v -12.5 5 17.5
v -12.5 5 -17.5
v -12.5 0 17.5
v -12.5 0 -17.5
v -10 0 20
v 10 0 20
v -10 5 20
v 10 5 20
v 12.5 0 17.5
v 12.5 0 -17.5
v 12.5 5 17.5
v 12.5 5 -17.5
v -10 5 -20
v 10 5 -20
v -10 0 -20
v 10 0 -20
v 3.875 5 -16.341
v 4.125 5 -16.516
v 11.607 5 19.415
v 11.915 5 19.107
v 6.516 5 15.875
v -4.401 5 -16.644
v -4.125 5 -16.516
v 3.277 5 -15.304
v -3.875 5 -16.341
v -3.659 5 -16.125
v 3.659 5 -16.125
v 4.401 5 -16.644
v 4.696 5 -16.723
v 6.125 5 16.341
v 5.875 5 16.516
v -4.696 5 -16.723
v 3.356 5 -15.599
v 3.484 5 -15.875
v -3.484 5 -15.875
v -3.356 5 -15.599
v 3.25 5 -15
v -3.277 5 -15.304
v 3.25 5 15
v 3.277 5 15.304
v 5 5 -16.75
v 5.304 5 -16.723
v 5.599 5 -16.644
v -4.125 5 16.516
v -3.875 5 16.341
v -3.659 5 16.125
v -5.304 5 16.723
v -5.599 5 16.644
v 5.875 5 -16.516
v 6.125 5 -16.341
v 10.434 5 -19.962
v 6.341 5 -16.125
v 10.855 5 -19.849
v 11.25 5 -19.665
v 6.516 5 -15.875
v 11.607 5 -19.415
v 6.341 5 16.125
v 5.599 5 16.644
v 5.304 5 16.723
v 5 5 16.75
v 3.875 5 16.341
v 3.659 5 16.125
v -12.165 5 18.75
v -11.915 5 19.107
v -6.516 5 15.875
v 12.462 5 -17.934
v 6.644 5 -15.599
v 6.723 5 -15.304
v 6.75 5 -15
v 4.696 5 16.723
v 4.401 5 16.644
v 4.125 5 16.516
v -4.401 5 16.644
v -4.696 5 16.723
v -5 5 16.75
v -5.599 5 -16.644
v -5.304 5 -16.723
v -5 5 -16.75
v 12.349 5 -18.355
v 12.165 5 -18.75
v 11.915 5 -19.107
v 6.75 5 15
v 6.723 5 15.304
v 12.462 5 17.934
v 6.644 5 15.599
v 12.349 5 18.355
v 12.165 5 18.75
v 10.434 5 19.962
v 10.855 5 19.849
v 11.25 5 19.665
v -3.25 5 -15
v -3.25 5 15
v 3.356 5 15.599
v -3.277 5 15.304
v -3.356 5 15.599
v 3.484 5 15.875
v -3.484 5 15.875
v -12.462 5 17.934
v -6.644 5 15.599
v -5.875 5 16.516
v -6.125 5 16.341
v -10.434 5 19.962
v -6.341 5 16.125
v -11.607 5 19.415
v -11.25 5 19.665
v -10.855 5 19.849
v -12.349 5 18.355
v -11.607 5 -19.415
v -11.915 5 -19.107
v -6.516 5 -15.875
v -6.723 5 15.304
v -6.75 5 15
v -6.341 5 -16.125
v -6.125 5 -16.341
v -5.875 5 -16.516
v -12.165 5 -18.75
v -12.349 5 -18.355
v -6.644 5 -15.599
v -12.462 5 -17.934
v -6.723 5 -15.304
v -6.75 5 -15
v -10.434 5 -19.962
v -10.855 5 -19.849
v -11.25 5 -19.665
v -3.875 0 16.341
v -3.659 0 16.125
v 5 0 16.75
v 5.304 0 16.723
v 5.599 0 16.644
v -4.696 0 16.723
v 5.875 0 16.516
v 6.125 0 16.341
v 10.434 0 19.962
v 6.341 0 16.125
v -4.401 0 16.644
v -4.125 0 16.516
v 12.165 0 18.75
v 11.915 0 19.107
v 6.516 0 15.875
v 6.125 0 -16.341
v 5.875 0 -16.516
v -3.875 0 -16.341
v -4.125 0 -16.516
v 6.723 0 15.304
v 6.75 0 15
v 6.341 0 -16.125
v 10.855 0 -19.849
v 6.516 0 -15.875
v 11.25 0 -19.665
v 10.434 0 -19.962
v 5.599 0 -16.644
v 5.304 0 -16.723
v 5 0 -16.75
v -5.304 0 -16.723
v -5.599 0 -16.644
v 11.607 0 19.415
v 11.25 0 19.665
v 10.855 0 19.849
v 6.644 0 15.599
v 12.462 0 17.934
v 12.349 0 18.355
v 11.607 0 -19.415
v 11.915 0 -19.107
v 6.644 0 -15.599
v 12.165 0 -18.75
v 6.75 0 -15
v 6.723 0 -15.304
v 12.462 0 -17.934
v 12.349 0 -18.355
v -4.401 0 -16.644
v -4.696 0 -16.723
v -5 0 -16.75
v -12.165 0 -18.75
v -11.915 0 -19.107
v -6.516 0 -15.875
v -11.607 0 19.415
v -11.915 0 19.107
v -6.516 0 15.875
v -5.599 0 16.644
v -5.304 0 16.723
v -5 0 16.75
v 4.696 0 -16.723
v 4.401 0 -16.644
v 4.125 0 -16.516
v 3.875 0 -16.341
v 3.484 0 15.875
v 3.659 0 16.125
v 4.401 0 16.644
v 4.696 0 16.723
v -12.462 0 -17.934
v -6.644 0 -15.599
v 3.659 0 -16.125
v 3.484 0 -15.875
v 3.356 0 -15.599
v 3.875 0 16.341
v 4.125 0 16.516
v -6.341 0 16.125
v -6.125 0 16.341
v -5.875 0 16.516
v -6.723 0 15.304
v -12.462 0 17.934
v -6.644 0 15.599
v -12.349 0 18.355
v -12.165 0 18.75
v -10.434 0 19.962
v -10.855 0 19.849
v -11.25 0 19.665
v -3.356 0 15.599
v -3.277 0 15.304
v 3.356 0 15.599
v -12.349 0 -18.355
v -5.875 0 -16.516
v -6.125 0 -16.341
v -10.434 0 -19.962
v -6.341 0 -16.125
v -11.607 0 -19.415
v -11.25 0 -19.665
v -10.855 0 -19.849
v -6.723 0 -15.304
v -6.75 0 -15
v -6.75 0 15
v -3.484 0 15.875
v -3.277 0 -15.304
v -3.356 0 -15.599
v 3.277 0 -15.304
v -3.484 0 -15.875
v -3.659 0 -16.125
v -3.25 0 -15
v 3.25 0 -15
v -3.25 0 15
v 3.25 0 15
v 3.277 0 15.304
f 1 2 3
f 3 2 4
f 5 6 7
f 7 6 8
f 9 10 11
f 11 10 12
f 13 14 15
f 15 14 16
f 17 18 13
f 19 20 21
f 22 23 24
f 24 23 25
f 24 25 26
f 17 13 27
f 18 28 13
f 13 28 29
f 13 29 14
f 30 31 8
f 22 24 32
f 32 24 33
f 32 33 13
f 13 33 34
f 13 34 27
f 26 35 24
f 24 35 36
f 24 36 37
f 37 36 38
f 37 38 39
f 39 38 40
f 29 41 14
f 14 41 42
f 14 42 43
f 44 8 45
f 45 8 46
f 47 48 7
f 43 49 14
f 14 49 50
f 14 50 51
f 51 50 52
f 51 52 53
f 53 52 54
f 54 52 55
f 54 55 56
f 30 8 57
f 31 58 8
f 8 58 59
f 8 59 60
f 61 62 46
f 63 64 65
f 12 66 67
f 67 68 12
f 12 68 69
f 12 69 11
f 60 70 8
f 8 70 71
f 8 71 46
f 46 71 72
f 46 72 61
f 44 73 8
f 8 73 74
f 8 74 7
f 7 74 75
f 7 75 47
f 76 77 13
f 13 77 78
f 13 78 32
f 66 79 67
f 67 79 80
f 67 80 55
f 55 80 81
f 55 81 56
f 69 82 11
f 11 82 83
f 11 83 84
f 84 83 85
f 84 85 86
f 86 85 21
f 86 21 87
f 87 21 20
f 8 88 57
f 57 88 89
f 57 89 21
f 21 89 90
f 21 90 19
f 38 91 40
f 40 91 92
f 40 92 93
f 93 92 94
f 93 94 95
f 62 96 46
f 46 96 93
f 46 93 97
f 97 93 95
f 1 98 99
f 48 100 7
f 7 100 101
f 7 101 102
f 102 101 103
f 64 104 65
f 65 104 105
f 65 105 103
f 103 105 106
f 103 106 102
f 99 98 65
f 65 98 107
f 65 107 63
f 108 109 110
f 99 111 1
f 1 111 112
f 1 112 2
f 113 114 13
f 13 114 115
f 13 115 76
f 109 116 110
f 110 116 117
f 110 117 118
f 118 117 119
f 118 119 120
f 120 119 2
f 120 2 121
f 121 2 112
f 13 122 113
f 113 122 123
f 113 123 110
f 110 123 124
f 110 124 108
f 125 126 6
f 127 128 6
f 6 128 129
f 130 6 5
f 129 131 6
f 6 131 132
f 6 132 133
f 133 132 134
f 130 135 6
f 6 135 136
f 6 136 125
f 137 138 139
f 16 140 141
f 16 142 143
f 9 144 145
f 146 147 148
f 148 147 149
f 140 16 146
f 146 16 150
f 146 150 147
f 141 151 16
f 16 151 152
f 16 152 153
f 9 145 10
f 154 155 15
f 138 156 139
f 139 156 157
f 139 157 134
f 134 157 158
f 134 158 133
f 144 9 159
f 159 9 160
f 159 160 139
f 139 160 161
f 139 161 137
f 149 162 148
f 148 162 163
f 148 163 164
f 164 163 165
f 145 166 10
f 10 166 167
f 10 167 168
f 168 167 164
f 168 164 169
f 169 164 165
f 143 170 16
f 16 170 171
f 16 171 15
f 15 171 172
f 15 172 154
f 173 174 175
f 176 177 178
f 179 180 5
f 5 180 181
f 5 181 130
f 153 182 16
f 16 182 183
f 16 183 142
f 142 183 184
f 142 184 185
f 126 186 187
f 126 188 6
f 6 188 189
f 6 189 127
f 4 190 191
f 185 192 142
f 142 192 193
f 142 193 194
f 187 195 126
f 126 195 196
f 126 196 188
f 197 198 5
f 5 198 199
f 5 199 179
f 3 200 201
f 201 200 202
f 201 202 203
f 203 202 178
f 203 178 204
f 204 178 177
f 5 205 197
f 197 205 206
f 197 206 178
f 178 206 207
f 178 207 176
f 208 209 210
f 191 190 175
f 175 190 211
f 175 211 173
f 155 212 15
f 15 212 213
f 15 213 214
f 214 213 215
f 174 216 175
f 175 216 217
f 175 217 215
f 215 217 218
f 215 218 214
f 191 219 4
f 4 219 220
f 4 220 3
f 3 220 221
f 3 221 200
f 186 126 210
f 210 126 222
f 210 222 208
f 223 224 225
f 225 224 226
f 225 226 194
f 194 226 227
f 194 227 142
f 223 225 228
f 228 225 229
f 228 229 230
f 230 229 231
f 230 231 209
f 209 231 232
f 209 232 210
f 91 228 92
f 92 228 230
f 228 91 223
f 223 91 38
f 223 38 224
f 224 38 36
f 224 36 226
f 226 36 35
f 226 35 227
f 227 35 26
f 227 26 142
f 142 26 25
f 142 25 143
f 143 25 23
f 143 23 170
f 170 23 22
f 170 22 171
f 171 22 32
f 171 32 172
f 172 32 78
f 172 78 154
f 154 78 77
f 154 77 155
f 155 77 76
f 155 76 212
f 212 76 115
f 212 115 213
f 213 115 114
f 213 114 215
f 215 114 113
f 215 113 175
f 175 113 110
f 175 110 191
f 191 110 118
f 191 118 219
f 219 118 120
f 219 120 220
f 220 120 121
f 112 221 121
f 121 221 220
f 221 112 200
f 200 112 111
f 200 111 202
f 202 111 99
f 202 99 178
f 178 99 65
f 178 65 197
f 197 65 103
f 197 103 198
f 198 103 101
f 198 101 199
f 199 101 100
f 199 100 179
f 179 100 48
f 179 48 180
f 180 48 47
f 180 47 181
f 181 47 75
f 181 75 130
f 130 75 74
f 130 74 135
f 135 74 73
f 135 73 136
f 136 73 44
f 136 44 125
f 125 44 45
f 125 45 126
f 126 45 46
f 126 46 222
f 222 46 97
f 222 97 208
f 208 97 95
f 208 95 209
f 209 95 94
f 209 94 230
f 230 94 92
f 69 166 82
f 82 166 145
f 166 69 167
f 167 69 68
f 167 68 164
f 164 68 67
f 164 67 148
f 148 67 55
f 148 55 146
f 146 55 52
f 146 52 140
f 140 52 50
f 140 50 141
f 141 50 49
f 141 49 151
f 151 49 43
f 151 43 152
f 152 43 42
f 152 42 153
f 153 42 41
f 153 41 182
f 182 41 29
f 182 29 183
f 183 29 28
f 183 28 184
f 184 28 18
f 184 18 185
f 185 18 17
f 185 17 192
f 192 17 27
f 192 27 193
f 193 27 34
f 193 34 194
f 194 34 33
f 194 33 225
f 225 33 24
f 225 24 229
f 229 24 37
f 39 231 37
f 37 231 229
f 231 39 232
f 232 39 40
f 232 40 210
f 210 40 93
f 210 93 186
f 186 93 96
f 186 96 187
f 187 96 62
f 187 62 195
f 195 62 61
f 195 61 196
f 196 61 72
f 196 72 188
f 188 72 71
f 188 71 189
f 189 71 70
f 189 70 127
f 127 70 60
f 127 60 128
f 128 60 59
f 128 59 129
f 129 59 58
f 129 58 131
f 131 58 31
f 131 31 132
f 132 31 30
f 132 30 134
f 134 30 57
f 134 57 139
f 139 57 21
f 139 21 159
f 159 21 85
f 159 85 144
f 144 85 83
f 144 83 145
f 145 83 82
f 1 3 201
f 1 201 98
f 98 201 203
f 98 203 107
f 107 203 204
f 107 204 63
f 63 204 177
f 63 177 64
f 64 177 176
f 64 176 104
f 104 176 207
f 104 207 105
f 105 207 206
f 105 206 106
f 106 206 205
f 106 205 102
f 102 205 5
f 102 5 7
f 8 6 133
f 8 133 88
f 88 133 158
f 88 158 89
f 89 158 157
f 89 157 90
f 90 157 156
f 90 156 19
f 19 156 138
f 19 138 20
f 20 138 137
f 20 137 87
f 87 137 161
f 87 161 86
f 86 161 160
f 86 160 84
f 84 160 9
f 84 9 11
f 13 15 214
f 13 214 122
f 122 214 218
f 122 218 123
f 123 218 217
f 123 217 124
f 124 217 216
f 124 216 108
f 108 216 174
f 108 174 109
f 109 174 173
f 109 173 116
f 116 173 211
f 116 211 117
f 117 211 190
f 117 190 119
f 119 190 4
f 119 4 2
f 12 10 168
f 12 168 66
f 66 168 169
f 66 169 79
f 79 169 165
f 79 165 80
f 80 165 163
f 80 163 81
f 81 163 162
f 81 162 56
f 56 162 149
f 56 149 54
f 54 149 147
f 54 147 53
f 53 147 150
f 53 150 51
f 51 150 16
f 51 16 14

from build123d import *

# Parameters (mm, degrees)
SKETCH1_W           = 25
SKETCH1_H           = 40
BOSS_EXTRUDE1_DEPTH = 5
CUT_EXTRUDE1_DEPTH  = 5
FILLET1_R           = 2.5


with BuildPart() as part:
    # Sketch1 → Boss-Extrude1 (new body)
    with BuildSketch(Plane(origin=(0, 0, 0), x_dir=(1, 0, 0), z_dir=(0, 1, 0))):
        Rectangle(SKETCH1_W, SKETCH1_H)
    extrude(amount=BOSS_EXTRUDE1_DEPTH)

    # Sketch2 → Cut-Extrude1 (cut)
    with BuildSketch(Plane(origin=(0, 5, 0), x_dir=(1, 0, 0), z_dir=(0, 1, 0))):
        with BuildLine():
            Line((-3.25, 15), (-3.25, -15))
            ThreePointArc((-3.25, -15), (-5, -16.75), (-6.75, -15))
            Line((-6.75, -15), (-6.75, 15))
            ThreePointArc((-6.75, 15), (-5, 16.75), (-3.25, 15))
        make_face()
        with BuildLine():
            Line((3.25, 15), (3.25, -15))
            ThreePointArc((3.25, -15), (5, -16.75), (6.75, -15))
            Line((6.75, -15), (6.75, 15))
            ThreePointArc((6.75, 15), (5, 16.75), (3.25, 15))
        make_face()
    extrude(amount=-CUT_EXTRUDE1_DEPTH, mode=Mode.SUBTRACT)

    # Fillet1
    fillet1_edges = [part.edges().sort_by_distance(p)[0] for p in [
        (12.5, 2.5, 20),
        (-12.5, 2.5, 20),
        (-12.5, 2.5, -20),
        (12.5, 2.5, -20),
    ]]
    fillet(fillet1_edges, radius=FILLET1_R)


solid = part.part
